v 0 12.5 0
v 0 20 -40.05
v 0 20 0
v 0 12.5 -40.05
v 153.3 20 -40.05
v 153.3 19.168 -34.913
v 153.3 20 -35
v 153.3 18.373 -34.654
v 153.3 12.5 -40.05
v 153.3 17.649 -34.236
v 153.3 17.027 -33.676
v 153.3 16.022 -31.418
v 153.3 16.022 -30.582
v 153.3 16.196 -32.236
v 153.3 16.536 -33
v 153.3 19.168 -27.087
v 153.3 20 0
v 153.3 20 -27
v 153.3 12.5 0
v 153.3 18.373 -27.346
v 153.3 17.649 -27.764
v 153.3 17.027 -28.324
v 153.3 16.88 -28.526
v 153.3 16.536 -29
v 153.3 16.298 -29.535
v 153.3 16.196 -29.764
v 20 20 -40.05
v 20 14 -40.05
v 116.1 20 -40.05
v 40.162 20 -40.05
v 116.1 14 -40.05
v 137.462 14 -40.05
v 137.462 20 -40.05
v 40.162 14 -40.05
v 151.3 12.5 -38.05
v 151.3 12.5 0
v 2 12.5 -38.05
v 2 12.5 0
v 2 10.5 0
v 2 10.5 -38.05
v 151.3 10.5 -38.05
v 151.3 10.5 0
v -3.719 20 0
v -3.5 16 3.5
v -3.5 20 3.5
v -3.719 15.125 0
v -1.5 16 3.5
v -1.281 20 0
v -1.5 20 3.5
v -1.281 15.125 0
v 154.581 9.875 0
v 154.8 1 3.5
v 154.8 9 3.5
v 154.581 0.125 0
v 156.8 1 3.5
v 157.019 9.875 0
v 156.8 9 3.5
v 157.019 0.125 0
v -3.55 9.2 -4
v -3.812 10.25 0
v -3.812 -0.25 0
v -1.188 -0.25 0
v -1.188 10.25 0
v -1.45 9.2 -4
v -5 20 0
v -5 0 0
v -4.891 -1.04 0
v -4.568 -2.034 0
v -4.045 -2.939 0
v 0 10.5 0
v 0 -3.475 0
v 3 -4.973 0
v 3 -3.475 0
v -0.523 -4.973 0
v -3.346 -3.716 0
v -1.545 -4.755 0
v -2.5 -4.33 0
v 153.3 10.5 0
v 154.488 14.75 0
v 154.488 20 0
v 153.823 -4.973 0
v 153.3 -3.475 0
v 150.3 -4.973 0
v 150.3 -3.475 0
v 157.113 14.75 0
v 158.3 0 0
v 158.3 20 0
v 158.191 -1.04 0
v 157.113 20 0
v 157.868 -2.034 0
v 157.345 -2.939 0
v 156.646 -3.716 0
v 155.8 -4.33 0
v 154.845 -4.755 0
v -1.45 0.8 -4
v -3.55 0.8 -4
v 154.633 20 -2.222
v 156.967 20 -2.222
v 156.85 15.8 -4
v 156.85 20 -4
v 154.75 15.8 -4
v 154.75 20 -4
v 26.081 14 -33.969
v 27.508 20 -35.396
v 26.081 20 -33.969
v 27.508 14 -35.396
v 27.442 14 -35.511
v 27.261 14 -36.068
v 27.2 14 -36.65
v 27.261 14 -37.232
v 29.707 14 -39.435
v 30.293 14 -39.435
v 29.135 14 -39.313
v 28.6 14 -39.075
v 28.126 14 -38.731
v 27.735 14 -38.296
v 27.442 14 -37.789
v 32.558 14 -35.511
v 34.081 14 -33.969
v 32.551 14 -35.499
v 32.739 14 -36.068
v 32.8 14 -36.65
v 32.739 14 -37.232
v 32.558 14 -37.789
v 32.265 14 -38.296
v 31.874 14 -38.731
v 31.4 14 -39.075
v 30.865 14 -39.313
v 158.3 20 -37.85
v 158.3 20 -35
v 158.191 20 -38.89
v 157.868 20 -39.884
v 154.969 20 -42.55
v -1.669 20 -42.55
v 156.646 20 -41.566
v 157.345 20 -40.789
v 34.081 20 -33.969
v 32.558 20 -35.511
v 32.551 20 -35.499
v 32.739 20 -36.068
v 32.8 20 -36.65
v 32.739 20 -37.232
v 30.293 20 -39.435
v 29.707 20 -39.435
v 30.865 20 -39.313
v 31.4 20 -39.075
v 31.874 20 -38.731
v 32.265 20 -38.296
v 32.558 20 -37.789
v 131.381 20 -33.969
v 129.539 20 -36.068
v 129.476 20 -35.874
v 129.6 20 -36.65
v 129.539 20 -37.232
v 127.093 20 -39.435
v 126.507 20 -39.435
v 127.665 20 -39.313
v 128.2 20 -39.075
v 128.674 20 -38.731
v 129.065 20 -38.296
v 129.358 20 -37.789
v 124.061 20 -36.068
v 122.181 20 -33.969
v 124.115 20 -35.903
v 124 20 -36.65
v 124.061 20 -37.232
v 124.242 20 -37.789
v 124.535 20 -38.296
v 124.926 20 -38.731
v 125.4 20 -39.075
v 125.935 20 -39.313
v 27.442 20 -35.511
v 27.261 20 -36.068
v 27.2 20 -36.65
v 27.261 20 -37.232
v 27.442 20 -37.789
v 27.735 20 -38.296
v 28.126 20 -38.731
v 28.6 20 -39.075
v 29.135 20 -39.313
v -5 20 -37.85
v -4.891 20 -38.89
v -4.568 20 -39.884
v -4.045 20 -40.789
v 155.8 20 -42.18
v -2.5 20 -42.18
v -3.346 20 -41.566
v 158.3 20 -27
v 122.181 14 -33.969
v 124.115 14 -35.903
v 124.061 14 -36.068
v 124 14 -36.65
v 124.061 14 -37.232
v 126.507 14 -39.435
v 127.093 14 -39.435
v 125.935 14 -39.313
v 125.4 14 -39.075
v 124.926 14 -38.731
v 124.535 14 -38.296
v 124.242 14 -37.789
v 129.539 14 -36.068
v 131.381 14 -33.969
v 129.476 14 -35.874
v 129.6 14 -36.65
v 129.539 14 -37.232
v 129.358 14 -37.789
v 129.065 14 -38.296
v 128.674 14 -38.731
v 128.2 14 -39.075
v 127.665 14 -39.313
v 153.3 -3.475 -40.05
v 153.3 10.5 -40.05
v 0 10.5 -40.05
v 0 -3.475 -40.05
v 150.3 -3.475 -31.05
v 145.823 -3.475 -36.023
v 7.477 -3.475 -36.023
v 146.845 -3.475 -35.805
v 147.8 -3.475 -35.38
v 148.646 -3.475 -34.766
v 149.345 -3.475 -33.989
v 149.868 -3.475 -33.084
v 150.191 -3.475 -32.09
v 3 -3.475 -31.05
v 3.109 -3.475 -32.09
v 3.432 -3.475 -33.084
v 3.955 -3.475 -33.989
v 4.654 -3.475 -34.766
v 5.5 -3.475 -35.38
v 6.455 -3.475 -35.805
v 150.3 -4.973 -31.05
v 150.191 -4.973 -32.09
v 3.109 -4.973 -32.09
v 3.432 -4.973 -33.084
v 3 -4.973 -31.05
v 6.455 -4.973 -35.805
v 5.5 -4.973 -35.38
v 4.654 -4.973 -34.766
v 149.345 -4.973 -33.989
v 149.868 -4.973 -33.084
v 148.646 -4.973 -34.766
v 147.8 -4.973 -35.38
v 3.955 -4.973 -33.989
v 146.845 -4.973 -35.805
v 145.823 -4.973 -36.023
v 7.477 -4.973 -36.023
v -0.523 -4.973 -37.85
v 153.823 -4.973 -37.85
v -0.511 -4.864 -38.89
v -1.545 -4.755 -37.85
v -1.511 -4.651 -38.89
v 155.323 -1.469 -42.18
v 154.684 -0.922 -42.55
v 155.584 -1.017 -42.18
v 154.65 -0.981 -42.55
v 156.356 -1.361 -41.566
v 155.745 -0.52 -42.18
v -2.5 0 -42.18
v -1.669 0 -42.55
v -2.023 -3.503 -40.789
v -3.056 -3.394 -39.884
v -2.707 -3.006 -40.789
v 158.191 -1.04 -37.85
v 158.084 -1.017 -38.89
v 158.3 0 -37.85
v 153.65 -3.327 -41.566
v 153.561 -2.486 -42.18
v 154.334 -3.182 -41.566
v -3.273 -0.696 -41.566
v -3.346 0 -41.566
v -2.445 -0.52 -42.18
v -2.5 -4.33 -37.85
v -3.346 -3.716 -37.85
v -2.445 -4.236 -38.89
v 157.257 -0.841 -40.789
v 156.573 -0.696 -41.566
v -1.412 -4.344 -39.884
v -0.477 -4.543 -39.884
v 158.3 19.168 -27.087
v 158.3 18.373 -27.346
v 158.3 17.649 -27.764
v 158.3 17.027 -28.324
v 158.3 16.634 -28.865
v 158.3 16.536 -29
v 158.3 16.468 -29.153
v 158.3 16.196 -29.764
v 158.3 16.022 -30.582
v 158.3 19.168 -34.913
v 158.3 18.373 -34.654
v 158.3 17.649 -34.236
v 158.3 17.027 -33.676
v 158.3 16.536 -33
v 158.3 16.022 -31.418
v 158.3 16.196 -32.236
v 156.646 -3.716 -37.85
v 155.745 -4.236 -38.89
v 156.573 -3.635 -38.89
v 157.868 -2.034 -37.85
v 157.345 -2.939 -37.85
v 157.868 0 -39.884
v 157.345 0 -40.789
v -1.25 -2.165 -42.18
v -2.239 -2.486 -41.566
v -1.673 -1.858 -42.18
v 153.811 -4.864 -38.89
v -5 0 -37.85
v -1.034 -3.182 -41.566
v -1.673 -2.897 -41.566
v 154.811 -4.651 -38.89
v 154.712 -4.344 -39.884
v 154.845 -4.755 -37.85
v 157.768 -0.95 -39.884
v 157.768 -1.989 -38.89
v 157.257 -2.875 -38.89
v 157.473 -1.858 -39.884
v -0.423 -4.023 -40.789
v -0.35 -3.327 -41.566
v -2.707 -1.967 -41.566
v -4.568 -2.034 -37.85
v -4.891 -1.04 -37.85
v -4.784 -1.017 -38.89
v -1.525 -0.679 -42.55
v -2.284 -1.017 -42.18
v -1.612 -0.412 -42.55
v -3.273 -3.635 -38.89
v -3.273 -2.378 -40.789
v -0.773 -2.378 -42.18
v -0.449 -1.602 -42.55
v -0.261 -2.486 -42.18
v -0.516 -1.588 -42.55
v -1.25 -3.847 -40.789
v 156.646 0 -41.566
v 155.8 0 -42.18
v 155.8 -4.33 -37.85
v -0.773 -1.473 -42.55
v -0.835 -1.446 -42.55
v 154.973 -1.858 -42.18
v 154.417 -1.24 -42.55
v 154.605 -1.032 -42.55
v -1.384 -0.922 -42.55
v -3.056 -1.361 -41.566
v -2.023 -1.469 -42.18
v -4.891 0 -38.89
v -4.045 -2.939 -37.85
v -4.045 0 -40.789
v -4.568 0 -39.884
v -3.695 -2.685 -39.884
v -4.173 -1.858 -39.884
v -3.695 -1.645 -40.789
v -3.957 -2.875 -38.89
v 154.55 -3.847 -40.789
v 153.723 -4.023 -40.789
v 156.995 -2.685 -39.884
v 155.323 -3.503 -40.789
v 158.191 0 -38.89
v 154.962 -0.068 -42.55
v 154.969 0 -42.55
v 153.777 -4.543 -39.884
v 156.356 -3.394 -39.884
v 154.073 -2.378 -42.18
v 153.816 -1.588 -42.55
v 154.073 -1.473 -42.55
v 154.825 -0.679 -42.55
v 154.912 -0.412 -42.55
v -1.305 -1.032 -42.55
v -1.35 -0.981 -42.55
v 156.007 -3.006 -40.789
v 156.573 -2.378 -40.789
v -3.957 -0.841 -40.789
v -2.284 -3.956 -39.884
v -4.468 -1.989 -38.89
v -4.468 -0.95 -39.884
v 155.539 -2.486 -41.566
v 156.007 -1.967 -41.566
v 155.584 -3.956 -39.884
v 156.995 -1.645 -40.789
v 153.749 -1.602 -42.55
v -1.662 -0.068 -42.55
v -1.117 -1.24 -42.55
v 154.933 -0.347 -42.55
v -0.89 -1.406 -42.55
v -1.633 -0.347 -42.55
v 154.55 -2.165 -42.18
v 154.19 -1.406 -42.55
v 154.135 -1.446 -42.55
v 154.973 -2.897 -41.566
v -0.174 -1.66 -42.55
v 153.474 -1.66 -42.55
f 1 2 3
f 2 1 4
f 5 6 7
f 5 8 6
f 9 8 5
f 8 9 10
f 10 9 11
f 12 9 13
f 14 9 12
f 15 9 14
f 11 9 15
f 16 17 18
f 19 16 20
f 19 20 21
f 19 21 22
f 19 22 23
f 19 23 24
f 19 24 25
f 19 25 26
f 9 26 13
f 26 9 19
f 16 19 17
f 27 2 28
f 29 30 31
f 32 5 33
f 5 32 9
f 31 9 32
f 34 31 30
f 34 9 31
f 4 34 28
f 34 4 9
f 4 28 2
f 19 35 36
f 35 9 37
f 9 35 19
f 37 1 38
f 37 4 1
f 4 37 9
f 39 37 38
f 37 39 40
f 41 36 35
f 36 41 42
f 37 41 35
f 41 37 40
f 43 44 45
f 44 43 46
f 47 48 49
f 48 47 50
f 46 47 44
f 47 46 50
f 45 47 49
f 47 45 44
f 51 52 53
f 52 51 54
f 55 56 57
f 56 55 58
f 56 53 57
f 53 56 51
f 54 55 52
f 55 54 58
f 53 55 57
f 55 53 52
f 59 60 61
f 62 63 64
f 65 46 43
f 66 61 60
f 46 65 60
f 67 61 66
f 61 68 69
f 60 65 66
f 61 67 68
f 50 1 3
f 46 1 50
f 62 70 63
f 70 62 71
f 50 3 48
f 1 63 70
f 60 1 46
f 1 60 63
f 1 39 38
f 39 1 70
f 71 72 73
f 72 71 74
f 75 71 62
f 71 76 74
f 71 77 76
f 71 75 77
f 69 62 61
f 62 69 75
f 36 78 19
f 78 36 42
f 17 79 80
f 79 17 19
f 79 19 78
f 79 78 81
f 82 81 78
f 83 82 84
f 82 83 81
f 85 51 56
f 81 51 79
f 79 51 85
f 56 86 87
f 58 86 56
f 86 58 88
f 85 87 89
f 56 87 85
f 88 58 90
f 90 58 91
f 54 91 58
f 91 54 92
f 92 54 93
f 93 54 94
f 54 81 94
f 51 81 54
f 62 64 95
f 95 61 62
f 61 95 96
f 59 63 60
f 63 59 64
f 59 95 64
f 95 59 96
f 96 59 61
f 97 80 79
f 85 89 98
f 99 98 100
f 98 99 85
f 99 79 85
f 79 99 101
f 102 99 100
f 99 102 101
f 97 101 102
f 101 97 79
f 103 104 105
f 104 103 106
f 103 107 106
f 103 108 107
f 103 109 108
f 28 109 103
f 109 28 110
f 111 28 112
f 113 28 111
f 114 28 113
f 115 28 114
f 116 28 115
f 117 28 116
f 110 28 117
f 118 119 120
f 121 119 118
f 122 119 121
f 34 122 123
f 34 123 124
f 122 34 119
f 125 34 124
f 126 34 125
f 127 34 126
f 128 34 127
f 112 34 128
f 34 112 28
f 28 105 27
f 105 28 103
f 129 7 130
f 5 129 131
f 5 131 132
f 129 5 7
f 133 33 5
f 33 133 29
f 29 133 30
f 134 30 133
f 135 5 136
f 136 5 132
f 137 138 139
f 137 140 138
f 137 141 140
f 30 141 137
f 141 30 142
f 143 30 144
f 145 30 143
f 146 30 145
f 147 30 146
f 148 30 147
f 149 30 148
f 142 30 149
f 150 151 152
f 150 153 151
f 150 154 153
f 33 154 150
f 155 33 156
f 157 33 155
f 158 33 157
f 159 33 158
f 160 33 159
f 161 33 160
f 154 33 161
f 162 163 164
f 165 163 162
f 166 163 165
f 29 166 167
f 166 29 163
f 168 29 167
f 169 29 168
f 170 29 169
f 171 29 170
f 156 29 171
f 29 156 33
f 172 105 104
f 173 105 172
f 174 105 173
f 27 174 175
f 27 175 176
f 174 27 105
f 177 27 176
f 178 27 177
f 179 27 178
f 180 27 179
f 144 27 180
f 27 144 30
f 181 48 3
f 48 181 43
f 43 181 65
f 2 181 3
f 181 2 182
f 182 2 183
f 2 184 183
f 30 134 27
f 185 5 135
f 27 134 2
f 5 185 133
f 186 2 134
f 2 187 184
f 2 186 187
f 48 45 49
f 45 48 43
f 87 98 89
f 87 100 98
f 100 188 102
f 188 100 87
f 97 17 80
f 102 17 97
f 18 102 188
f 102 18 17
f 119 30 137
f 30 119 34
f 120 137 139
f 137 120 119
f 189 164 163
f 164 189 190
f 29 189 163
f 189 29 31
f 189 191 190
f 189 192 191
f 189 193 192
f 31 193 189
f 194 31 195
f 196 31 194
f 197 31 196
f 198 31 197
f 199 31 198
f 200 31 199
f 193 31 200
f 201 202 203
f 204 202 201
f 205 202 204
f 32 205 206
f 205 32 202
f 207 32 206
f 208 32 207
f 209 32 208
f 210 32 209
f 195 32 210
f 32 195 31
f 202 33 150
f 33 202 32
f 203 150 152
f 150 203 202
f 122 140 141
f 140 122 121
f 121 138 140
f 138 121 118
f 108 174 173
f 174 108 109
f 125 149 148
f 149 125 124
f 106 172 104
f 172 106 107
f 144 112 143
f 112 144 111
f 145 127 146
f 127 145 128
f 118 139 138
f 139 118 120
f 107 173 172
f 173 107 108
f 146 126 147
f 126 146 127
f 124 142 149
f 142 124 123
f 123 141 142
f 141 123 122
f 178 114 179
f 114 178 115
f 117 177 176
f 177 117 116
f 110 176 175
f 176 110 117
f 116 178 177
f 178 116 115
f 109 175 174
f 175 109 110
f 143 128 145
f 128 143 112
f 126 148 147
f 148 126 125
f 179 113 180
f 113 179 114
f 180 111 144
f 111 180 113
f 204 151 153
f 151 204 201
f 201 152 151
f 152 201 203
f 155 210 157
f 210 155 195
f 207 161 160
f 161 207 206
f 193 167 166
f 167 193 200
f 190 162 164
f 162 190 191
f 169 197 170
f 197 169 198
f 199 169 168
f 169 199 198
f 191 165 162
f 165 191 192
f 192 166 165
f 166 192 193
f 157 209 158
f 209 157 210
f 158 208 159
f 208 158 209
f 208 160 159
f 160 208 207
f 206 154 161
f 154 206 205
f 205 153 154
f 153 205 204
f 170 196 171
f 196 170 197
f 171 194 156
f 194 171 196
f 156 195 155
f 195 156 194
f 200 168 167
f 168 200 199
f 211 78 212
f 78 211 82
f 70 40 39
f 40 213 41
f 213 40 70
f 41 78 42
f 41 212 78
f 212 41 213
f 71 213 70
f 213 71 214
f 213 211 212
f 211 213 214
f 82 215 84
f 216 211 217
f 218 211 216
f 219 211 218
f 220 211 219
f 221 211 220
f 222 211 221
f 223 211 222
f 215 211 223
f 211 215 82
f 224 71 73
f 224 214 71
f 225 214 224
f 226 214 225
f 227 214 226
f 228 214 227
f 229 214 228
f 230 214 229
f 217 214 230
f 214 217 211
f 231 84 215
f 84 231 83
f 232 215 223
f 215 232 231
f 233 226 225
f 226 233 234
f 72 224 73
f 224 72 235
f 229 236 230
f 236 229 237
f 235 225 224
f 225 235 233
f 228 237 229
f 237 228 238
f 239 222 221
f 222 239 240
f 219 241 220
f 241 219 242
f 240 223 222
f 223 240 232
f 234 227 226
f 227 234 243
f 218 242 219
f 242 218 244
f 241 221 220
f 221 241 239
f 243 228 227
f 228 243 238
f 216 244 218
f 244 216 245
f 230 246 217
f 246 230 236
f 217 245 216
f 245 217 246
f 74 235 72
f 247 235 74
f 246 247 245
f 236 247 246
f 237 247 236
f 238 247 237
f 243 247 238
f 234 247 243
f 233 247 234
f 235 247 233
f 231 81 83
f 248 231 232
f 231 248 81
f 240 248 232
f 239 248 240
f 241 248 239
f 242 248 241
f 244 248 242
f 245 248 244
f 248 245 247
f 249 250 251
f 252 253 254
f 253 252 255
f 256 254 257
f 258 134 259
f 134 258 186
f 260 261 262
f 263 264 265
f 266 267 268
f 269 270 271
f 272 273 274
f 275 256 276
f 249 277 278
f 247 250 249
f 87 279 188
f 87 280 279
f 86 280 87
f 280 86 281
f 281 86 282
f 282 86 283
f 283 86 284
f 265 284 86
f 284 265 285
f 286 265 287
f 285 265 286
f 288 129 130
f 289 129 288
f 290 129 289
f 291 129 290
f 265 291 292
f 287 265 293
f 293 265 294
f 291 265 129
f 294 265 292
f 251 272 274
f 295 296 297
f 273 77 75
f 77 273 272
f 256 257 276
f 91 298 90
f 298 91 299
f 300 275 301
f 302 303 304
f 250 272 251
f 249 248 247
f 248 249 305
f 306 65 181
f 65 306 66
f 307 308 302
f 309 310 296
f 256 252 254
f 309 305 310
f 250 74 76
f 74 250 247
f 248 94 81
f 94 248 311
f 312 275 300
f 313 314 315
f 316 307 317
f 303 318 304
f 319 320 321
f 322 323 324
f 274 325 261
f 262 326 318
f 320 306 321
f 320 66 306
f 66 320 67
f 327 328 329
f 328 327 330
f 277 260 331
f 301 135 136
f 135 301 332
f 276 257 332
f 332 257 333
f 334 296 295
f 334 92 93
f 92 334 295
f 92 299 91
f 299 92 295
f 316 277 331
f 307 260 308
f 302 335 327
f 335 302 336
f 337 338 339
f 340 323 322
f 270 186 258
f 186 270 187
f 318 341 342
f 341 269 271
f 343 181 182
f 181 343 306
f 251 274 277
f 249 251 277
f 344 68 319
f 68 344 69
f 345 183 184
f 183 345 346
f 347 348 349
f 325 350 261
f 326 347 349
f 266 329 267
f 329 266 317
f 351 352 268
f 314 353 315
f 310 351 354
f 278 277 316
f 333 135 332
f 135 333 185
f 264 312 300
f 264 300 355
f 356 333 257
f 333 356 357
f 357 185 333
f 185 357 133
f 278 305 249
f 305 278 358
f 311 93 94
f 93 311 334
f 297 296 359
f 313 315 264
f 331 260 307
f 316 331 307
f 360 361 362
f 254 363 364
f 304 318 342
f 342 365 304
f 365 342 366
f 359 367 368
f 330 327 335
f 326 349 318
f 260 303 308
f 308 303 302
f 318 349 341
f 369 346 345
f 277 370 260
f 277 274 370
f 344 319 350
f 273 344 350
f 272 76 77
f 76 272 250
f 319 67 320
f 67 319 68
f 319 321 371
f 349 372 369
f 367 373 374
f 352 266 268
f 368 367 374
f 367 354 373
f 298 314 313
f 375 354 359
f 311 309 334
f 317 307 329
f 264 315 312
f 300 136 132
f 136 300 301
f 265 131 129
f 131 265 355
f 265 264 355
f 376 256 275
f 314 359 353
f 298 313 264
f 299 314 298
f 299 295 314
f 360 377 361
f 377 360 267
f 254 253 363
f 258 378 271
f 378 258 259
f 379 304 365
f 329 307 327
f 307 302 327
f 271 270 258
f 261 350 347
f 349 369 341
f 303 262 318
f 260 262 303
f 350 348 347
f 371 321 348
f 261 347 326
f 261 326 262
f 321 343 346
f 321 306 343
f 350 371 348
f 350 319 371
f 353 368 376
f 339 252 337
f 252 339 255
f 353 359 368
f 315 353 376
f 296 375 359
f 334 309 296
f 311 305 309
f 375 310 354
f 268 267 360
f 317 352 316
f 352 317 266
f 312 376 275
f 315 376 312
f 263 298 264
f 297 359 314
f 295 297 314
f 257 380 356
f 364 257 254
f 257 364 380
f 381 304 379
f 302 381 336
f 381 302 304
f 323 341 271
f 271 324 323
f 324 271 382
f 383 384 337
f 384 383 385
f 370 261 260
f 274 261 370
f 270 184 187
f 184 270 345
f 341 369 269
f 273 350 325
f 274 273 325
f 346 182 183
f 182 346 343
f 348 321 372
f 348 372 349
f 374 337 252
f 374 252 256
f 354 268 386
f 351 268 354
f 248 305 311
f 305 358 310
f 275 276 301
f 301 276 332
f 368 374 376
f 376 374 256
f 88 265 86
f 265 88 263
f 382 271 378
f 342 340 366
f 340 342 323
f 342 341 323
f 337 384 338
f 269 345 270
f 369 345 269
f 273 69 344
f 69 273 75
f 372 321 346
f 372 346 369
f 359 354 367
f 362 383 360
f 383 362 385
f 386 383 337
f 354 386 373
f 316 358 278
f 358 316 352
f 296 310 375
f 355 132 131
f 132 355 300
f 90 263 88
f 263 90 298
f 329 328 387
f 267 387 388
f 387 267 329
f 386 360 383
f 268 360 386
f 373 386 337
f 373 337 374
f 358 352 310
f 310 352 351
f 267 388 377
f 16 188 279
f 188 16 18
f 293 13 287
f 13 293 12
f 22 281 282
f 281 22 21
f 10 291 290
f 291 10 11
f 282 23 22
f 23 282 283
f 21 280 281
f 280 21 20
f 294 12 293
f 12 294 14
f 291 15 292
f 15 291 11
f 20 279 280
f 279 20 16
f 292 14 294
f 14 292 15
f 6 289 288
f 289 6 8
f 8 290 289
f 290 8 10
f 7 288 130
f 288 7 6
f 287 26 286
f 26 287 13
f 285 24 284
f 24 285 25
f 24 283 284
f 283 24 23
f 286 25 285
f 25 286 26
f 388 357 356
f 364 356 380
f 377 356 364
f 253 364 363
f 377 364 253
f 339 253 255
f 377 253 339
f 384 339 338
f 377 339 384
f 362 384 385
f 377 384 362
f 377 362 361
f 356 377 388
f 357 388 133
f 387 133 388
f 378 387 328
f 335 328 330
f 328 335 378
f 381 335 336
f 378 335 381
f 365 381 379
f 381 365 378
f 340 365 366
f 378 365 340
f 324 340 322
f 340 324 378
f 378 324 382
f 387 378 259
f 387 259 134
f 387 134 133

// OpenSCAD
// file: miniclock-ref.scad
$fn = 10;

skinBreak = 0.01;       // extra depth to poke a hole through a surface

boardW = 146;
boardH = 63.7;     // was 63.45 - tight
boardD = 1.8 + skinBreak;

boardX = 0;
boardY = 4;

boardFrameW = 3;
boardFrameX = 0;
boardFrameY = -2;

reflectorWidth = boardW;
reflectorHeight = boardH + boardFrameW*2;
reflectorDepth = 10;
refOffZ = reflectorDepth / 2;

strokeWidth = 0.3;



segMul = 1.27;

adgOffX = 8;
adgOffY = 3;
aOffX = 4;
aOffY = 34;
dOffY = 0;
gOffY = 17;
adgSeg = [ [-8,-1], [-8,1], [-5,4], [5,4], [8,1], [8,-1], [5,-4], [-5,-4] ];

bcOffX = 21;
bcOffY = 8.5;
bOffY = 20;
cOffY = 3;
bcSeg = [ [-4,-4.5], [-4,4.5], [-1,7.5], [-1,8.5], [1.5,8.5], [3.5,6.5], [3.5,-6.5], [1.5,-8.5], [-1,-8.5], [-1,-7.5] ];

efOffX = 3;
efOffY = 8.5;
eOffY = 3;
fOffY = 20;
efSeg = [ [1,-8.5], [-1.5,-8.5], [-3.5,-6.5],  [-3.5,6.5],  [-1.5,8.5],  [1,8.5],  [1,7.5],  [4,4.5],  [4,-4.5],  [1,-7.5] ];

colonCenterX = 3;
colonCenterY = 3;
colonSeg = [ [-3.5,-2.5], [-3.5,2.5],  [-2.5,3.5],  [2.5,3.5],  [3.5,2.5],  [3.5,-2.5],  [2.5,-3.5],  [-2.5,-3.5] ];

module segment(path) {
    scale([.97, .98, 1])
    linear_extrude(height = reflectorDepth+1, center=true, scale=.85)
        polygon(path);
}

module sevenSeg() {
    
    translate([adgOffX + aOffX, adgOffY + aOffY, 0])
        segment(adgSeg);
    translate([adgOffX + aOffX, adgOffY + dOffY, 0])
        segment(adgSeg);
    translate([adgOffX + aOffX, adgOffY + gOffY, 0])
        segment(adgSeg);

    translate([bcOffX, bcOffY + bOffY, 0])
        segment(bcSeg);
    translate([bcOffX, bcOffY + cOffY, 0])
        segment(bcSeg);
    translate([efOffX, efOffY + eOffY, 0])
        segment(efSeg);
    translate([efOffX, efOffY + fOffY, 0])
        segment(efSeg);
}

module colons() {
    translate([colonCenterX, colonCenterY + 10, 0])
        segment(colonSeg);
    translate([colonCenterX, colonCenterY + 24, 0])
        segment(colonSeg);
}

module board(depth = boardD) {
    cube([boardW, boardH, depth]);
}

headerHeight = 6.5;
headerYOffset = 1;
headerAOffset = 7;
headerAWidth = 53;
headerBOffset = 77;
headerBWidth = 28.5;
headerDepth = 10;
headerBackDepth = 4;

module pinClearance() {
    // expansion header
        translate([headerAOffset, boardH-headerHeight, -boardD])
            cube([headerAWidth, headerHeight, headerDepth]);
    // prog header
        translate([headerBOffset, boardH-headerHeight, -boardD])
            cube([headerBWidth, headerHeight, headerDepth]);

switchAOffset = -1;
switchBOffset = 138;
switchYOffset = 5.7;
switchWidth = 8;
switchHeight = 10;
switchPinDepth = boardD + headerBackDepth;
    // reset and boot switches
        translate([switchAOffset, boardH-switchHeight-switchYOffset, switchPinDepth-boardD - headerBackDepth])
            cube([switchWidth, switchHeight, switchPinDepth]);
        translate([switchBOffset, boardH-switchHeight-switchYOffset, switchPinDepth-boardD - headerBackDepth])
            cube([switchWidth, switchHeight, switchPinDepth]);

powerW = 12;
powerH = 13;
powerD = 7;
powerX = 107;
powerY = 0;
powerZ = -2;
    // power jack pins
    translate([powerX, boardH-powerH+powerY, powerZ])
        cube([powerW, powerH, powerD]);

npW = 11;
npH = 4;
npD = 5;
npX = 125;
npY = -1;
npZ = -1;
    // neopixel out pins
    translate([npX, boardH-npH+npY, npZ])
        cube([npW, npH, npD]);

holeX1 = 2.54;
holeX2 = boardW - 2.54;
holeY1 = 2.54;
holeY2 = boardH - 2.54;
holeZ = 0;
holeR = 3/2;
holeD = 10;
    // mounting holes
    translate([holeX1, holeY1, holeZ])
        cylinder(r=holeR, h=holeD, center=true);
    translate([holeX1, holeY2, holeZ])
        cylinder(r=holeR, h=holeD, center=true);
    translate([holeX2, holeY1, holeZ])
        cylinder(r=holeR, h=holeD, center=true);
    translate([holeX2, holeY2, holeZ])
        cylinder(r=holeR, h=holeD, center=true);

}


module miniclock_reflector() {
difference() {
    // base to carve everything out of
    translate([boardFrameX-boardFrameW, boardFrameY-boardFrameW, -reflectorDepth])
        cube([boardW+boardFrameW*2, reflectorHeight+boardFrameW*2, reflectorDepth]);

    translate([boardFrameX + boardW, boardFrameY + boardH + boardFrameW, 0])
        rotate([0, 0, 180])
    union() {
        // pcb
        translate([boardX, boardY, -boardD+skinBreak])
            cube([boardW, boardH, boardD]);
        
        // header pins
        translate([boardX, boardY, -headerBackDepth])
            pinClearance();

        // seven segments (* 4) + colon
        translate([boardX - 1, boardY + 2, 0]) {
            scale([segMul, segMul, 1])
                union() {
        
                translate([1, 0, -refOffZ]) {
                    translate([1, 0, 0])
                        sevenSeg();
                    translate([28, 0, 0])
                        sevenSeg();
                    
                    translate([54, 0, 0])
                        colons();
                    
                    translate([62, 0, 0])
                        sevenSeg();
                    translate([89, 0, 0])
                        sevenSeg();
                }
            }
        }
    }
}
}

if (!LIBRARY)
    miniclock_reflector();
// main file
$fn=30;
LIBRARY = 1;

use <miniclock-ref.scad>;

wallmount = 1;              // hole on side for power, hook placement

acrylicDepth = 3.175 + .3;

skinBreak = 0.01;       // extra depth to poke a hole through a surface

boardW = 146;
boardH = 63.7;     // was 63.45 - tight
boardD = 1.8 + skinBreak;

boardFrameW = 3;
boardFrameX = 0;
boardFrameY = -2;

// from miniclock-ref - begin
boardW = 146;
boardH = 63.7;     // was 63.45 - tight
boardD = 1.8 + skinBreak;

reflectorWidth = 152.8; // boardW;
reflectorHeight = 75.6; // boardH + boardFrameW*2;
reflectorDepth = 10;
// from miniclock-ref - end

echo("Reflector[", reflectorWidth, reflectorHeight, reflectorDepth, "]");

fudge = 0.5;
reflectorW = reflectorWidth + fudge;
reflectorH = reflectorHeight + fudge;
reflectorD = reflectorDepth + fudge;

caseMinkowskiR = 5;
caseW = reflectorW;
caseH = 40;                 // really depth
caseD = reflectorH+caseMinkowskiR-2;
caseX = 0;
caseY = 0;
caseZ = -boardH/2 - caseMinkowskiR;

caseBackLip = 3;

// glassW = 148.26 + fudge;
// glassH = 65.8 + fudge;
glassW = reflectorW;
glassH = reflectorH;
glassD = acrylicDepth;
glassX = (reflectorW - glassW) / 2;
glassY = 0;
glassZ = -glassH/2-1;

glassLipDepth = 2;
glassLipSide = caseMinkowskiR + 3; // 1.5;
glassLipBottom = caseMinkowskiR + 3;

topBottomSplit = 0;

reflectorX = 0;
reflectorY = 0;
reflectorZ = reflectorH/2-1;

voidW = reflectorW;
voidH = reflectorH;
voidD = caseH - glassD - glassLipDepth -2 -caseBackLip;
voidAX = 0;
voidAY = reflectorD + 2;
voidAZ = -reflectorH/2-1;

module reflector() {
   translate([reflectorX, reflectorY, reflectorZ])
        rotate([-90, 0, 0])
            cube([reflectorW, reflectorH, reflectorD]);
}

module glass() {
    translate([glassX, glassY-glassD, glassZ])
        cube([glassW, glassD+skinBreak, glassH]);
}

module internalVoid() {
    // main volume
    translate([voidAX, voidAY, voidAZ])
        cube([voidW, voidD, voidH]);
    //additional around board retaining lip
    translate([voidAX+2, voidAY-4, voidAZ+2])
        cube([voidW-4, voidD, voidH-4]);
}

//    translate([7, -10, -topBottomSplit-(boardH/2)+9])

viewPortX = (reflectorW - glassW)/2;
viewPortY = -5;
viewPortZ = -glassH/2;
smallenW = glassLipSide * 2;
smallenH = glassLipBottom * 2;

module frontView() {
    translate([viewPortX+smallenW/2, viewPortY, viewPortZ+smallenH/2])
        minkowski() {
            cube([glassW-smallenW, glassH, glassH-smallenH]);
            sphere(r=caseMinkowskiR);
        }
}

module caseCore() {
    translate([caseX, caseY, caseZ])
    minkowski() {
        cube([caseW, caseH, caseD]);
            sphere(r=caseMinkowskiR);
    }
}


connW = 2.5;
connW2 = connW/2;
connH = 10;
connH2 = connH/2;

connPoly = [ [-connW2,-connH2], [connW2,-connH2], [connW2,connH2], [-connW2,connH2] ];

tabW = 2.5;
tabD = 4;

tabZout = 1.5;
tabZin = -2;

tabAX = -connW;
tabAY = 5;
tabBX = reflectorW+connW;
tabBY = 20;
tabCX = reflectorW+connW;
tabCY = 35;
tabBZ = tabZout;

module connectorPositive() {
#    translate([tabAX, tabBY, tabBZ])
        rotate([0, 0, 0])
        linear_extrude(height = tabD, center=true, scale=.8)
            polygon(connPoly);
#    translate([tabBX, tabAY, tabBZ])
        rotate([0, 0, 0])
        linear_extrude(height = tabD, center=true, scale=.8)
            polygon(connPoly);
#    translate([tabCX, tabCY, tabBZ])
        rotate([0, 0, 0])
        linear_extrude(height = tabD, center=true, scale=.8)
            polygon(connPoly);

}

module connectorNegative() {
    #translate([tabAX, tabAY, tabZin])
        rotate([180, 0, 0])
            scale([1.05, 1.05, 1])
            linear_extrude(height = tabD, center=true, scale=.8)
                polygon(connPoly);
    #translate([tabBX, tabBY, tabZin])
        rotate([180, 0, 0])
            scale([1.05, 1.05, 1])
            linear_extrude(height = tabD, center=true, scale=.8)
                polygon(connPoly);
    #translate([tabAX, tabCY, tabZin])
        rotate([180, 0, 0])
            scale([1.05, 1.05, 1])
            linear_extrude(height = tabD, center=true, scale=.8)
                polygon(connPoly);
}

pinFudge = 0.3;
pushPinR1 = 2.5 + pinFudge;
pushPinR2 = 4 + pinFudge;

pinMountW = pushPinR2*2;
pinMountH = 6;
pinMountD = pushPinR2*2;

pinMountX1 = 20;
pinMountX2 = 28;
pinMountY = 20 - pinMountH;
pinMountZ = -reflectorH/2-1;

pinX1 = 30;
pinY = 23;
pinZ = -reflectorH/2 +2.4;

module pinMountPositive() {
    translate([pinMountX1, pinMountY, pinMountZ])
        rotate([0, 45, 0])
            cube([pinMountW, pinMountH, pinMountD]);
    #translate([pinMountX2, pinMountY, pinMountZ])
        rotate([0, 45, 0])
            cube([pinMountW, pinMountH, pinMountD]);
    translate([reflectorW - pinMountX1 - pinMountW*2, pinMountY, pinMountZ])
        rotate([0, 45, 0])
            cube([pinMountW, pinMountH, pinMountD]);
    #translate([reflectorW - pinMountX2, pinMountY, pinMountZ])
        rotate([0, 45, 0])
            cube([pinMountW, pinMountH, pinMountD]);
}

module pinMountNegative() {
    #translate([pinX1, pinY, pinZ])
        rotate([90, 0, 0])
            cylinder(r=pushPinR1, h=20, center=true);
    #translate([reflectorW-pinX1+3.5, pinY, pinZ])
        rotate([90, 0, 0])
            cylinder(r=pushPinR1, h=20, center=true);
}

cableHoleX = reflectorW+2;
cableHoleY = 20;
cableHoleZ = -30;

module powerCableHole() {
    #translate([cableHoleX, cableHoleY, cableHoleZ])
        rotate([0, 90, 0])
            cylinder(r=4, h=10, center=true);
}

module oneSide() {
    // remove negative tab bits
    difference() {
        // from a halved
        union() {
            // with added positive tab bits
            difference() {
                // voided internal bits
                difference() {
                    // full core
                    union() {
//                    color("blue", 0.2);
                        difference() {
                            caseCore();
                        }
                    }
                    // (internal bits to void)
                    union() {
                        reflector();
                        glass();
                        internalVoid();
                        frontView();
                   }
                }
    
            
                // cut in half
                translate([-150, -50, 1])
                    cube([500, 500, 500]);
            }
            
            // tabs positive
            translate([0, 0, 1])
                connectorPositive();
            
            if (wallmount) {
                pinMountPositive();
            }
       }
        // tabs negative
        translate([0, 0, 1])
            connectorNegative();
        if (wallmount) {
           pinMountNegative();
           powerCableHole();
        }
   }
}

// 

split_it = 1;
splitX = -150;
splitY = 20;
splitZ = -50;

if (split_it) {
    difference() {
        translate([0, 0, -1])
            oneSide();
        translate([splitX, splitY, splitZ])
           cube([500, 500, 500]);
        // clean bottom
        translate([splitX, -100, -500-caseD/2-3])
           cube([500, 500, 500]);
    }
}
else {
    oneSide();
}
